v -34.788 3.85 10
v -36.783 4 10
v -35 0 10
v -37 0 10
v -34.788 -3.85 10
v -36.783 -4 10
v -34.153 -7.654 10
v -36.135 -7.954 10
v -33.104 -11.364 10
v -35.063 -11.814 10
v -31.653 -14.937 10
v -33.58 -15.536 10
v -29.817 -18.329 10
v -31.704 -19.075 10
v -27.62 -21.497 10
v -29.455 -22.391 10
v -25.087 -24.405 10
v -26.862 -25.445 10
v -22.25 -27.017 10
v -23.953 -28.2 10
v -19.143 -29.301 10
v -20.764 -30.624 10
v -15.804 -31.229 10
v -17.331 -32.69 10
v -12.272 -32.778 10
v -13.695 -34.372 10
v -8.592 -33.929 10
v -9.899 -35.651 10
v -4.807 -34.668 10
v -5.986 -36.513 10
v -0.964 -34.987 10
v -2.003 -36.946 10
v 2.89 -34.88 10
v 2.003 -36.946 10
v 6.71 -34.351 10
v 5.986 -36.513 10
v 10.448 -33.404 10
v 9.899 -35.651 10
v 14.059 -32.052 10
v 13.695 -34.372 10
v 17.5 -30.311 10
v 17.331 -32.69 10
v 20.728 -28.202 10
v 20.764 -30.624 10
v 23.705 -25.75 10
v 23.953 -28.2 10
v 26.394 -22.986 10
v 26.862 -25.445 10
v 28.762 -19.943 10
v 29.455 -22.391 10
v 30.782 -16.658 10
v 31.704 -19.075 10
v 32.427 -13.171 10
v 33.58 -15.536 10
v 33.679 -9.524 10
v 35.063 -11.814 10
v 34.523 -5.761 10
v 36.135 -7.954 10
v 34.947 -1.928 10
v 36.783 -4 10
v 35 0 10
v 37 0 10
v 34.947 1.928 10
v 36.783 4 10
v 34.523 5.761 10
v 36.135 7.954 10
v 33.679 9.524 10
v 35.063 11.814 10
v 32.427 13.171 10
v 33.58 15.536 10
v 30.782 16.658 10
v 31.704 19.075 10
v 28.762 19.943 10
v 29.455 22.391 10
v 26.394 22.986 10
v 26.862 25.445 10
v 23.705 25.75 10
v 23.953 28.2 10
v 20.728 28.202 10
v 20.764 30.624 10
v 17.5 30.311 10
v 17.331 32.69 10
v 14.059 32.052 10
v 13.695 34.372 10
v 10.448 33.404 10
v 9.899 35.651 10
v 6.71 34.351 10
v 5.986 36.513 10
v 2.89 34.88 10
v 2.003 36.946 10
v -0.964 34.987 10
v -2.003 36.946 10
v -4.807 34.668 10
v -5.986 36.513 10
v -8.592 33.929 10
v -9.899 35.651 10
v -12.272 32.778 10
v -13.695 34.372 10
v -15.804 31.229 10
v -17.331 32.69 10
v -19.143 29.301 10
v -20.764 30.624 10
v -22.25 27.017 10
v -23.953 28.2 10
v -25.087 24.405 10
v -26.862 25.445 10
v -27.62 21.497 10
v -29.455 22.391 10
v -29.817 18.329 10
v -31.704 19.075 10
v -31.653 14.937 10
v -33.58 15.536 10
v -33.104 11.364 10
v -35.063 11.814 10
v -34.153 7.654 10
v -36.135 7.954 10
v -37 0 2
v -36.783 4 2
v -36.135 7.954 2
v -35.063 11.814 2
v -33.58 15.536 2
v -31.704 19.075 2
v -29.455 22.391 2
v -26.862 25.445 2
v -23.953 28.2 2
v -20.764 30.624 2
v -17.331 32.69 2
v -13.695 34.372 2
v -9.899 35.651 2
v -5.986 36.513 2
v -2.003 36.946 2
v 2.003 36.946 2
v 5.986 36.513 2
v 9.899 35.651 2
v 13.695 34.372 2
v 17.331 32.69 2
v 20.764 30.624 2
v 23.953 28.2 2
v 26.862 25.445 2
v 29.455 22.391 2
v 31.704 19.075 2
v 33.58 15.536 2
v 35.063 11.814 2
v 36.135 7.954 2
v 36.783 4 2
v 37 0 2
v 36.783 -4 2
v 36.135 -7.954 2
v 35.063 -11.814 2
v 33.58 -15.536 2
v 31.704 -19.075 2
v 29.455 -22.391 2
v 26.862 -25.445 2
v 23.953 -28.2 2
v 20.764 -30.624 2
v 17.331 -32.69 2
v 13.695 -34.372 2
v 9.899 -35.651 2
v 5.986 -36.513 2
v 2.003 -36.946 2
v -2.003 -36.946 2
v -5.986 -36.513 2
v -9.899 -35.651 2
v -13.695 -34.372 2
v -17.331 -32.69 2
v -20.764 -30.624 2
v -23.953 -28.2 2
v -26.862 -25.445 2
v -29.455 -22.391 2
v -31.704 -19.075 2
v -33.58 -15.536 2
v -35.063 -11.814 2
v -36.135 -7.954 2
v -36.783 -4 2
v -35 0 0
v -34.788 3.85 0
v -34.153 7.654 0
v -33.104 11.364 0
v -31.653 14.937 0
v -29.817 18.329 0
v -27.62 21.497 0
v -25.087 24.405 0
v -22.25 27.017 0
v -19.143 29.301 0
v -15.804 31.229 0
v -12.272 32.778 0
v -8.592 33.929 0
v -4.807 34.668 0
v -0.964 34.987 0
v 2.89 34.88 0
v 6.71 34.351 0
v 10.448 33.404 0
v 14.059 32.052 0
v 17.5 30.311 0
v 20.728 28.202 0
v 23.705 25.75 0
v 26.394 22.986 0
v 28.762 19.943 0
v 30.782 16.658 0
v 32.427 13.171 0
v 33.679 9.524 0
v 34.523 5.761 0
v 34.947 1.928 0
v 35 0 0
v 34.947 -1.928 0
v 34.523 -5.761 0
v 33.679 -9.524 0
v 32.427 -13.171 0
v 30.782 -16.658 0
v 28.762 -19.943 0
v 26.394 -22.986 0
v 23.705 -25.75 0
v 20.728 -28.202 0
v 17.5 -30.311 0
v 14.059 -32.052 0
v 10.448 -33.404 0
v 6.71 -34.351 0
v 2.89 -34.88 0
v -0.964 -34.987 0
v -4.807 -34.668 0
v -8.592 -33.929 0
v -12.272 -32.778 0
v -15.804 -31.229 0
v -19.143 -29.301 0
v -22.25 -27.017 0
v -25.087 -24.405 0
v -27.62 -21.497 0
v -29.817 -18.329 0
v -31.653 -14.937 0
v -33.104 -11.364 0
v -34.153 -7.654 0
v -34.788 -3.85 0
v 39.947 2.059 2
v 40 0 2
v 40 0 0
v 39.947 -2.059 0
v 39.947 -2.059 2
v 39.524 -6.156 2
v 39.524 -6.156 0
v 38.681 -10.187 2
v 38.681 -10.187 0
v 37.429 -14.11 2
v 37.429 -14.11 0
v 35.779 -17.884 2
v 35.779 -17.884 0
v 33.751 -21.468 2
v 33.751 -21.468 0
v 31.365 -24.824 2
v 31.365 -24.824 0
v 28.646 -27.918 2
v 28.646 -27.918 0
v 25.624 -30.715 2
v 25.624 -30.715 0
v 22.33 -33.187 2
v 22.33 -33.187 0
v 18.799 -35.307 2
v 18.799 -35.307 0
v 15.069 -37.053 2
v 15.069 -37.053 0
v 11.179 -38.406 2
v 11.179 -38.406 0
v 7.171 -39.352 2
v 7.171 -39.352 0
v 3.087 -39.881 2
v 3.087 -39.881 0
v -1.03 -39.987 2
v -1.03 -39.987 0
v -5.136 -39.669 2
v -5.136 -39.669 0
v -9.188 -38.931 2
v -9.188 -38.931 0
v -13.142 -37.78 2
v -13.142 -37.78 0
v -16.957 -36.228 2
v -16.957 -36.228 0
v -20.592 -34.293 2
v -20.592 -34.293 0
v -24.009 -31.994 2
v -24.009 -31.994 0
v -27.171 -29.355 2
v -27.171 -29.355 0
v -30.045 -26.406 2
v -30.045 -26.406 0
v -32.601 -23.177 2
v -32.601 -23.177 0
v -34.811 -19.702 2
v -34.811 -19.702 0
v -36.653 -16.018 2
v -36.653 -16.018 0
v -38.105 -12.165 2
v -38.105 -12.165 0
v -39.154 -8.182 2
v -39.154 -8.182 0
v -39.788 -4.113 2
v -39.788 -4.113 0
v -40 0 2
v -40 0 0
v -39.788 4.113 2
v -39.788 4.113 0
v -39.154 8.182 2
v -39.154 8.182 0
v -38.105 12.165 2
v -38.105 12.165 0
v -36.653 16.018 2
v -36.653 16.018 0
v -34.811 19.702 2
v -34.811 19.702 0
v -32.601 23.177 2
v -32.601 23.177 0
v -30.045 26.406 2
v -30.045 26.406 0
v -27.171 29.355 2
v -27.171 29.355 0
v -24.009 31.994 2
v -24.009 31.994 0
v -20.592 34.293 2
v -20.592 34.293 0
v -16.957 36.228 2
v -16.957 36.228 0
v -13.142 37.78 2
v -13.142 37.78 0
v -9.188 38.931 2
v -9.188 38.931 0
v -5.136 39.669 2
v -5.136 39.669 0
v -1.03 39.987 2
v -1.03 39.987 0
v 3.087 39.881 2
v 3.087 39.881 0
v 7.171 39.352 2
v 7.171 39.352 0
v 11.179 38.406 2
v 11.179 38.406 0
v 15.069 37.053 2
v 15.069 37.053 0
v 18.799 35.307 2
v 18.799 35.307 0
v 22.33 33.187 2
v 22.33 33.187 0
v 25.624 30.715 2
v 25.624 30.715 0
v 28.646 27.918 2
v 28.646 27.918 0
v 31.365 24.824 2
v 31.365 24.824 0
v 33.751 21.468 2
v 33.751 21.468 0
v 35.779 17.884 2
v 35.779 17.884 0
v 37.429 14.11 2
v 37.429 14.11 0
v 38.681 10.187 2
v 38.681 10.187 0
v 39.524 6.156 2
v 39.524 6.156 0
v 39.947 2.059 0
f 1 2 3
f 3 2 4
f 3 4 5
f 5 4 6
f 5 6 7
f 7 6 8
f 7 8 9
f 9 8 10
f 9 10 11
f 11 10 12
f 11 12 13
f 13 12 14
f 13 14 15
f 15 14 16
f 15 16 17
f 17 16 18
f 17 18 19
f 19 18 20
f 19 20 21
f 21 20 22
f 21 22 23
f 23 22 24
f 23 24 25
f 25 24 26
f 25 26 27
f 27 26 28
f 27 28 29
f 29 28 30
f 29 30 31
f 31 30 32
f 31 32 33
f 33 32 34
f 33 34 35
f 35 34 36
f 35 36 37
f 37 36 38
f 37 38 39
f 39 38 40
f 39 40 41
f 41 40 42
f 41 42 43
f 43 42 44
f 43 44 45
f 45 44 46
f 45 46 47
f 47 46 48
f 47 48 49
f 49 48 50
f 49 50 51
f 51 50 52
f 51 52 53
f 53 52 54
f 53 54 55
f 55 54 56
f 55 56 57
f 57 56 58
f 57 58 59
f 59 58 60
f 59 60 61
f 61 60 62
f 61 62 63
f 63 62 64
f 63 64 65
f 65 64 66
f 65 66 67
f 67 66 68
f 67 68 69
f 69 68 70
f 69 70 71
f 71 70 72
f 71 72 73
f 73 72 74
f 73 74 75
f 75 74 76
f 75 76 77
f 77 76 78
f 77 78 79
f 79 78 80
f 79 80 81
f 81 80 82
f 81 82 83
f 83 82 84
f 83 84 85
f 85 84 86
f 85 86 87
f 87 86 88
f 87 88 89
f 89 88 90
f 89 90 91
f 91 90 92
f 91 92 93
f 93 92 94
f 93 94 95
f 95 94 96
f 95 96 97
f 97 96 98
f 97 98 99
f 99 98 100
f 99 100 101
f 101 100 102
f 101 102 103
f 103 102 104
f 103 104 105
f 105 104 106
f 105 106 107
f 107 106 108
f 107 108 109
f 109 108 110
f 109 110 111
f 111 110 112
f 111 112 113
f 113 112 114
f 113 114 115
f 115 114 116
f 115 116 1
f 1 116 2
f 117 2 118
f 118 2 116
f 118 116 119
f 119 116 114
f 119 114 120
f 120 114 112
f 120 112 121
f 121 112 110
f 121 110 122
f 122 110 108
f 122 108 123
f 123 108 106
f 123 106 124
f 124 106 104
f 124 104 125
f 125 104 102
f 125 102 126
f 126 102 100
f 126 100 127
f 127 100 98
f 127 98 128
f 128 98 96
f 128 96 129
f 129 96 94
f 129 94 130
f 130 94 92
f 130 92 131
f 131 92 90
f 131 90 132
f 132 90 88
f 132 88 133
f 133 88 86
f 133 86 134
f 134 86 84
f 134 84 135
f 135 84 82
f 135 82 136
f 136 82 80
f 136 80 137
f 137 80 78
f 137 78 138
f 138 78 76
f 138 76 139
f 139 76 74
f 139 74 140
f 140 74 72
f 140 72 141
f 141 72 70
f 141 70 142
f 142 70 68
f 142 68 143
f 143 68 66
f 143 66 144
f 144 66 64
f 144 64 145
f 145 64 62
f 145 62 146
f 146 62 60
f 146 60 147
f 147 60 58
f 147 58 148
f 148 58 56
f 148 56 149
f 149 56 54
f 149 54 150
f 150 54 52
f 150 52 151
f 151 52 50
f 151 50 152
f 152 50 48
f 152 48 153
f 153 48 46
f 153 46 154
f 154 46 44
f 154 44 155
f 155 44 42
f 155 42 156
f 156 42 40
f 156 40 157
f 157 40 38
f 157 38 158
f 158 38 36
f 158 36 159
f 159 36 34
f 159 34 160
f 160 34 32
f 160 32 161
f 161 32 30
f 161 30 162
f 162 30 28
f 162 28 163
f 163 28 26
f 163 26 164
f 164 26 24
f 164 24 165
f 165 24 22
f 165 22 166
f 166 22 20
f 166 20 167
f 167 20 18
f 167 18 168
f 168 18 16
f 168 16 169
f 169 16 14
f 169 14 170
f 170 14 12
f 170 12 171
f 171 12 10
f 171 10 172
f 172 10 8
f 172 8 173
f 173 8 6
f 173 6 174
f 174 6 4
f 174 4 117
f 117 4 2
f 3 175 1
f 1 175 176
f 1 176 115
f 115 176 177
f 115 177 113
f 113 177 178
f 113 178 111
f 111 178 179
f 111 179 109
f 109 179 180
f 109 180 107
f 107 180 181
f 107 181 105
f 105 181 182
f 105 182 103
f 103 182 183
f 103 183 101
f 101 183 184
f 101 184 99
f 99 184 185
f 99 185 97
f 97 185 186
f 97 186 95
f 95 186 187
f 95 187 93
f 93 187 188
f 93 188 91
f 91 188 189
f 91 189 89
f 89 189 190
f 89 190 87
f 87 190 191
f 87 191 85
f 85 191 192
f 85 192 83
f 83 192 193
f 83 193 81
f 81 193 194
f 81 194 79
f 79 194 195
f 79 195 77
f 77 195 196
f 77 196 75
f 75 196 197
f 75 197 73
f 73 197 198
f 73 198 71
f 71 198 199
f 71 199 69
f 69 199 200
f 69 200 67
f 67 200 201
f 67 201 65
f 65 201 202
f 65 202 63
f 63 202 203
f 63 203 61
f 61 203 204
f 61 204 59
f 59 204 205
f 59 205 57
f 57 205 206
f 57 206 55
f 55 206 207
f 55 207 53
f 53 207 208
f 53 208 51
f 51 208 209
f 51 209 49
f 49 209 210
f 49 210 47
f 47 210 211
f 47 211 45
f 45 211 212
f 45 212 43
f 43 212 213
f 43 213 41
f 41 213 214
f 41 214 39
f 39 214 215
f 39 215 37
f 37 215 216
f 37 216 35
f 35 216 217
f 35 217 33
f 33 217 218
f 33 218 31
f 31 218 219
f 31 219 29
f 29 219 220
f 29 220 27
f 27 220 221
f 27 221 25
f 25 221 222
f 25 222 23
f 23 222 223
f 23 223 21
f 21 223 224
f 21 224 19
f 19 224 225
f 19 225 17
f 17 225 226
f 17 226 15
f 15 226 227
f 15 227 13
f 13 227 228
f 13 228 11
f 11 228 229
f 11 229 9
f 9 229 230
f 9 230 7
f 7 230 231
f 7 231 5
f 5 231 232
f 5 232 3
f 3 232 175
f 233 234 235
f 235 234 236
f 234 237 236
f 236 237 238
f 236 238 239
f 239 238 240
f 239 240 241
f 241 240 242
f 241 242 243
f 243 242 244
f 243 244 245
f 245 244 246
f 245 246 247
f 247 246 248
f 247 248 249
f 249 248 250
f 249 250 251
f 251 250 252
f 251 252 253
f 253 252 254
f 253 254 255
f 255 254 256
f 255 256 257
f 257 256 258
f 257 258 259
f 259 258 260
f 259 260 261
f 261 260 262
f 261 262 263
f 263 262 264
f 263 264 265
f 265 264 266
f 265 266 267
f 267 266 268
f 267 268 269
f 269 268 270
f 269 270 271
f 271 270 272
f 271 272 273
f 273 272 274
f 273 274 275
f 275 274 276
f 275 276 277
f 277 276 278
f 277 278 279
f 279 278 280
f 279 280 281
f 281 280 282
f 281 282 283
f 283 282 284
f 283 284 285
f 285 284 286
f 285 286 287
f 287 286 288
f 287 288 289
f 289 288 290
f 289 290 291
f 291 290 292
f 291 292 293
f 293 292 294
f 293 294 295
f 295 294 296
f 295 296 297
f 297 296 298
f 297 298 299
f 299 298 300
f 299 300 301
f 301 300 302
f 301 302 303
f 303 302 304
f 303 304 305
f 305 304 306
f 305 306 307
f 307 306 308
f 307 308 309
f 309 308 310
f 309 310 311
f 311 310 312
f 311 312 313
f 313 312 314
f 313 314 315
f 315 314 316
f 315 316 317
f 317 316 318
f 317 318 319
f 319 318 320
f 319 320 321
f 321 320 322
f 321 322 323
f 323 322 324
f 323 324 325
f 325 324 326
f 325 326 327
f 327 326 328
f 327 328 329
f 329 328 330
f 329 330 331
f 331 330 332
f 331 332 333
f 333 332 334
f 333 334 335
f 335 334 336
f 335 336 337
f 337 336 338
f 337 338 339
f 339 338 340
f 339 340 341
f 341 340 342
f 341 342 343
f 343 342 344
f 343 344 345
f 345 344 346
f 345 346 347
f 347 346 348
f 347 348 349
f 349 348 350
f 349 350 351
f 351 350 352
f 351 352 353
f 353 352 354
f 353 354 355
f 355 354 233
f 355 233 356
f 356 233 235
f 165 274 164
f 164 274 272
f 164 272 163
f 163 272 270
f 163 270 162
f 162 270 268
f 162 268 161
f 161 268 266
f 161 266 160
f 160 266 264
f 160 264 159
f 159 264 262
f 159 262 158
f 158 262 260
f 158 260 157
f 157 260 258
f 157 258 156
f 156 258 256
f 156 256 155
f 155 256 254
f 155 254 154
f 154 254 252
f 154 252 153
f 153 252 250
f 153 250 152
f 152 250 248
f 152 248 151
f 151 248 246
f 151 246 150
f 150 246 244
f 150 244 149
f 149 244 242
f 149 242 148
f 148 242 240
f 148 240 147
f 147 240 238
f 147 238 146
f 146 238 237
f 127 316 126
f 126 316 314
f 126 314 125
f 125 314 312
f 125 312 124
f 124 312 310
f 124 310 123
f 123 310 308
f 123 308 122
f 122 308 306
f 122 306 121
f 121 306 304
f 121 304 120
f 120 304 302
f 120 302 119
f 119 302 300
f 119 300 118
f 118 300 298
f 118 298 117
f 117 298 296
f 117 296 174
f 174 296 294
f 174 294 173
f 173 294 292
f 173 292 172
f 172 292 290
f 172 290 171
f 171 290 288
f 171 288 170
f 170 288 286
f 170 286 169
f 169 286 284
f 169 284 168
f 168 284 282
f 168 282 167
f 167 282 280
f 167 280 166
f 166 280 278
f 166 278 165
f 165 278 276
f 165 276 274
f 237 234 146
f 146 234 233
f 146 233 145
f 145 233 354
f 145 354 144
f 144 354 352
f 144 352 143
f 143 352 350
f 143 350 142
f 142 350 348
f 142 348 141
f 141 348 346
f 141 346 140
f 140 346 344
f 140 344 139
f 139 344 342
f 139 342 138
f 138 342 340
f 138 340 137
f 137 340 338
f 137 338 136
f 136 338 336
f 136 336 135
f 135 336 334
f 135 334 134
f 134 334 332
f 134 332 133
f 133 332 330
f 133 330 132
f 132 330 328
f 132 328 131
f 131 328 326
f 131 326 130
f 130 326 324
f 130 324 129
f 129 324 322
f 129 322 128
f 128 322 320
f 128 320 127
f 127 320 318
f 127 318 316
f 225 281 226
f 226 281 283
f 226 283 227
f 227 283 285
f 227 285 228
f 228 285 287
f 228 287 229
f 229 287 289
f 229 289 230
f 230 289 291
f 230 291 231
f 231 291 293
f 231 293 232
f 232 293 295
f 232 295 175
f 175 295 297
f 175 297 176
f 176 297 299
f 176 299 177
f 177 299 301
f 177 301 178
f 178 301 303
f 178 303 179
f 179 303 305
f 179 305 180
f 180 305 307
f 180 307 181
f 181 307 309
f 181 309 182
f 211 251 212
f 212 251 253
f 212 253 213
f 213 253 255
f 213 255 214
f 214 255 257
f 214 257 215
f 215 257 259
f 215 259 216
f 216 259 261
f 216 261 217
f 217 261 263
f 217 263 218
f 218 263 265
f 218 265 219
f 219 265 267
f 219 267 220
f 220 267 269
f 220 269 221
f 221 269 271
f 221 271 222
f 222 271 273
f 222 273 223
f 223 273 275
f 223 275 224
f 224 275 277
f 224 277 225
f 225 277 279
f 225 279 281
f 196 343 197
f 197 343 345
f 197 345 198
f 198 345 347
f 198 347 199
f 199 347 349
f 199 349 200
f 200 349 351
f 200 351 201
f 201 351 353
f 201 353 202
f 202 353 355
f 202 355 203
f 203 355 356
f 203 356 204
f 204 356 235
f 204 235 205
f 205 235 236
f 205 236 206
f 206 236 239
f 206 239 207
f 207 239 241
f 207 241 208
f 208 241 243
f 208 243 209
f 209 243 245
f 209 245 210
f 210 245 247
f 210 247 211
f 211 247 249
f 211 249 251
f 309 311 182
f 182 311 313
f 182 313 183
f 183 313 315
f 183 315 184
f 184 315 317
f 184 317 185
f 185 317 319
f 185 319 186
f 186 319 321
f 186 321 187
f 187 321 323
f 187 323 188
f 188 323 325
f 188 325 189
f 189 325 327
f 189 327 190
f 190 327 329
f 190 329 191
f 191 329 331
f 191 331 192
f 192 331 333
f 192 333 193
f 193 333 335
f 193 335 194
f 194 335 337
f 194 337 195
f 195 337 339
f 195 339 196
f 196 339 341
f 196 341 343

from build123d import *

# Parameters (mm, degrees)
ESQUISSE1_R             = 37
ESQUISSE1_R_2           = 35
BOSS_EXTRU_1_DEPTH      = 10
ESQUISSE3_R             = 40
BOSS_EXTRU_2_DEPTH      = 2
ENL_V_START             = -2
ESQUISSE4_R             = 35
ENL_V_MAT_EXTRU_1_DEPTH = 2


with BuildPart() as part:
    # Esquisse1 → Boss.-Extru.1 (new body)
    with BuildSketch(Plane.XY):
        Circle(ESQUISSE1_R)
        Circle(ESQUISSE1_R_2, mode=Mode.SUBTRACT)
    extrude(amount=BOSS_EXTRU_1_DEPTH)

    # Esquisse3 → Boss.-Extru.2 (add)
    with BuildSketch(Plane.XY):
        Circle(ESQUISSE3_R)
    extrude(amount=BOSS_EXTRU_2_DEPTH)

    # Esquisse4 → Enlèv. mat.-Extru.1 (cut)
    with BuildSketch(Plane.XY.offset(2).offset(ENL_V_START)):
        Circle(ESQUISSE4_R)
    extrude(amount=ENL_V_MAT_EXTRU_1_DEPTH, mode=Mode.SUBTRACT)


solid = part.part
